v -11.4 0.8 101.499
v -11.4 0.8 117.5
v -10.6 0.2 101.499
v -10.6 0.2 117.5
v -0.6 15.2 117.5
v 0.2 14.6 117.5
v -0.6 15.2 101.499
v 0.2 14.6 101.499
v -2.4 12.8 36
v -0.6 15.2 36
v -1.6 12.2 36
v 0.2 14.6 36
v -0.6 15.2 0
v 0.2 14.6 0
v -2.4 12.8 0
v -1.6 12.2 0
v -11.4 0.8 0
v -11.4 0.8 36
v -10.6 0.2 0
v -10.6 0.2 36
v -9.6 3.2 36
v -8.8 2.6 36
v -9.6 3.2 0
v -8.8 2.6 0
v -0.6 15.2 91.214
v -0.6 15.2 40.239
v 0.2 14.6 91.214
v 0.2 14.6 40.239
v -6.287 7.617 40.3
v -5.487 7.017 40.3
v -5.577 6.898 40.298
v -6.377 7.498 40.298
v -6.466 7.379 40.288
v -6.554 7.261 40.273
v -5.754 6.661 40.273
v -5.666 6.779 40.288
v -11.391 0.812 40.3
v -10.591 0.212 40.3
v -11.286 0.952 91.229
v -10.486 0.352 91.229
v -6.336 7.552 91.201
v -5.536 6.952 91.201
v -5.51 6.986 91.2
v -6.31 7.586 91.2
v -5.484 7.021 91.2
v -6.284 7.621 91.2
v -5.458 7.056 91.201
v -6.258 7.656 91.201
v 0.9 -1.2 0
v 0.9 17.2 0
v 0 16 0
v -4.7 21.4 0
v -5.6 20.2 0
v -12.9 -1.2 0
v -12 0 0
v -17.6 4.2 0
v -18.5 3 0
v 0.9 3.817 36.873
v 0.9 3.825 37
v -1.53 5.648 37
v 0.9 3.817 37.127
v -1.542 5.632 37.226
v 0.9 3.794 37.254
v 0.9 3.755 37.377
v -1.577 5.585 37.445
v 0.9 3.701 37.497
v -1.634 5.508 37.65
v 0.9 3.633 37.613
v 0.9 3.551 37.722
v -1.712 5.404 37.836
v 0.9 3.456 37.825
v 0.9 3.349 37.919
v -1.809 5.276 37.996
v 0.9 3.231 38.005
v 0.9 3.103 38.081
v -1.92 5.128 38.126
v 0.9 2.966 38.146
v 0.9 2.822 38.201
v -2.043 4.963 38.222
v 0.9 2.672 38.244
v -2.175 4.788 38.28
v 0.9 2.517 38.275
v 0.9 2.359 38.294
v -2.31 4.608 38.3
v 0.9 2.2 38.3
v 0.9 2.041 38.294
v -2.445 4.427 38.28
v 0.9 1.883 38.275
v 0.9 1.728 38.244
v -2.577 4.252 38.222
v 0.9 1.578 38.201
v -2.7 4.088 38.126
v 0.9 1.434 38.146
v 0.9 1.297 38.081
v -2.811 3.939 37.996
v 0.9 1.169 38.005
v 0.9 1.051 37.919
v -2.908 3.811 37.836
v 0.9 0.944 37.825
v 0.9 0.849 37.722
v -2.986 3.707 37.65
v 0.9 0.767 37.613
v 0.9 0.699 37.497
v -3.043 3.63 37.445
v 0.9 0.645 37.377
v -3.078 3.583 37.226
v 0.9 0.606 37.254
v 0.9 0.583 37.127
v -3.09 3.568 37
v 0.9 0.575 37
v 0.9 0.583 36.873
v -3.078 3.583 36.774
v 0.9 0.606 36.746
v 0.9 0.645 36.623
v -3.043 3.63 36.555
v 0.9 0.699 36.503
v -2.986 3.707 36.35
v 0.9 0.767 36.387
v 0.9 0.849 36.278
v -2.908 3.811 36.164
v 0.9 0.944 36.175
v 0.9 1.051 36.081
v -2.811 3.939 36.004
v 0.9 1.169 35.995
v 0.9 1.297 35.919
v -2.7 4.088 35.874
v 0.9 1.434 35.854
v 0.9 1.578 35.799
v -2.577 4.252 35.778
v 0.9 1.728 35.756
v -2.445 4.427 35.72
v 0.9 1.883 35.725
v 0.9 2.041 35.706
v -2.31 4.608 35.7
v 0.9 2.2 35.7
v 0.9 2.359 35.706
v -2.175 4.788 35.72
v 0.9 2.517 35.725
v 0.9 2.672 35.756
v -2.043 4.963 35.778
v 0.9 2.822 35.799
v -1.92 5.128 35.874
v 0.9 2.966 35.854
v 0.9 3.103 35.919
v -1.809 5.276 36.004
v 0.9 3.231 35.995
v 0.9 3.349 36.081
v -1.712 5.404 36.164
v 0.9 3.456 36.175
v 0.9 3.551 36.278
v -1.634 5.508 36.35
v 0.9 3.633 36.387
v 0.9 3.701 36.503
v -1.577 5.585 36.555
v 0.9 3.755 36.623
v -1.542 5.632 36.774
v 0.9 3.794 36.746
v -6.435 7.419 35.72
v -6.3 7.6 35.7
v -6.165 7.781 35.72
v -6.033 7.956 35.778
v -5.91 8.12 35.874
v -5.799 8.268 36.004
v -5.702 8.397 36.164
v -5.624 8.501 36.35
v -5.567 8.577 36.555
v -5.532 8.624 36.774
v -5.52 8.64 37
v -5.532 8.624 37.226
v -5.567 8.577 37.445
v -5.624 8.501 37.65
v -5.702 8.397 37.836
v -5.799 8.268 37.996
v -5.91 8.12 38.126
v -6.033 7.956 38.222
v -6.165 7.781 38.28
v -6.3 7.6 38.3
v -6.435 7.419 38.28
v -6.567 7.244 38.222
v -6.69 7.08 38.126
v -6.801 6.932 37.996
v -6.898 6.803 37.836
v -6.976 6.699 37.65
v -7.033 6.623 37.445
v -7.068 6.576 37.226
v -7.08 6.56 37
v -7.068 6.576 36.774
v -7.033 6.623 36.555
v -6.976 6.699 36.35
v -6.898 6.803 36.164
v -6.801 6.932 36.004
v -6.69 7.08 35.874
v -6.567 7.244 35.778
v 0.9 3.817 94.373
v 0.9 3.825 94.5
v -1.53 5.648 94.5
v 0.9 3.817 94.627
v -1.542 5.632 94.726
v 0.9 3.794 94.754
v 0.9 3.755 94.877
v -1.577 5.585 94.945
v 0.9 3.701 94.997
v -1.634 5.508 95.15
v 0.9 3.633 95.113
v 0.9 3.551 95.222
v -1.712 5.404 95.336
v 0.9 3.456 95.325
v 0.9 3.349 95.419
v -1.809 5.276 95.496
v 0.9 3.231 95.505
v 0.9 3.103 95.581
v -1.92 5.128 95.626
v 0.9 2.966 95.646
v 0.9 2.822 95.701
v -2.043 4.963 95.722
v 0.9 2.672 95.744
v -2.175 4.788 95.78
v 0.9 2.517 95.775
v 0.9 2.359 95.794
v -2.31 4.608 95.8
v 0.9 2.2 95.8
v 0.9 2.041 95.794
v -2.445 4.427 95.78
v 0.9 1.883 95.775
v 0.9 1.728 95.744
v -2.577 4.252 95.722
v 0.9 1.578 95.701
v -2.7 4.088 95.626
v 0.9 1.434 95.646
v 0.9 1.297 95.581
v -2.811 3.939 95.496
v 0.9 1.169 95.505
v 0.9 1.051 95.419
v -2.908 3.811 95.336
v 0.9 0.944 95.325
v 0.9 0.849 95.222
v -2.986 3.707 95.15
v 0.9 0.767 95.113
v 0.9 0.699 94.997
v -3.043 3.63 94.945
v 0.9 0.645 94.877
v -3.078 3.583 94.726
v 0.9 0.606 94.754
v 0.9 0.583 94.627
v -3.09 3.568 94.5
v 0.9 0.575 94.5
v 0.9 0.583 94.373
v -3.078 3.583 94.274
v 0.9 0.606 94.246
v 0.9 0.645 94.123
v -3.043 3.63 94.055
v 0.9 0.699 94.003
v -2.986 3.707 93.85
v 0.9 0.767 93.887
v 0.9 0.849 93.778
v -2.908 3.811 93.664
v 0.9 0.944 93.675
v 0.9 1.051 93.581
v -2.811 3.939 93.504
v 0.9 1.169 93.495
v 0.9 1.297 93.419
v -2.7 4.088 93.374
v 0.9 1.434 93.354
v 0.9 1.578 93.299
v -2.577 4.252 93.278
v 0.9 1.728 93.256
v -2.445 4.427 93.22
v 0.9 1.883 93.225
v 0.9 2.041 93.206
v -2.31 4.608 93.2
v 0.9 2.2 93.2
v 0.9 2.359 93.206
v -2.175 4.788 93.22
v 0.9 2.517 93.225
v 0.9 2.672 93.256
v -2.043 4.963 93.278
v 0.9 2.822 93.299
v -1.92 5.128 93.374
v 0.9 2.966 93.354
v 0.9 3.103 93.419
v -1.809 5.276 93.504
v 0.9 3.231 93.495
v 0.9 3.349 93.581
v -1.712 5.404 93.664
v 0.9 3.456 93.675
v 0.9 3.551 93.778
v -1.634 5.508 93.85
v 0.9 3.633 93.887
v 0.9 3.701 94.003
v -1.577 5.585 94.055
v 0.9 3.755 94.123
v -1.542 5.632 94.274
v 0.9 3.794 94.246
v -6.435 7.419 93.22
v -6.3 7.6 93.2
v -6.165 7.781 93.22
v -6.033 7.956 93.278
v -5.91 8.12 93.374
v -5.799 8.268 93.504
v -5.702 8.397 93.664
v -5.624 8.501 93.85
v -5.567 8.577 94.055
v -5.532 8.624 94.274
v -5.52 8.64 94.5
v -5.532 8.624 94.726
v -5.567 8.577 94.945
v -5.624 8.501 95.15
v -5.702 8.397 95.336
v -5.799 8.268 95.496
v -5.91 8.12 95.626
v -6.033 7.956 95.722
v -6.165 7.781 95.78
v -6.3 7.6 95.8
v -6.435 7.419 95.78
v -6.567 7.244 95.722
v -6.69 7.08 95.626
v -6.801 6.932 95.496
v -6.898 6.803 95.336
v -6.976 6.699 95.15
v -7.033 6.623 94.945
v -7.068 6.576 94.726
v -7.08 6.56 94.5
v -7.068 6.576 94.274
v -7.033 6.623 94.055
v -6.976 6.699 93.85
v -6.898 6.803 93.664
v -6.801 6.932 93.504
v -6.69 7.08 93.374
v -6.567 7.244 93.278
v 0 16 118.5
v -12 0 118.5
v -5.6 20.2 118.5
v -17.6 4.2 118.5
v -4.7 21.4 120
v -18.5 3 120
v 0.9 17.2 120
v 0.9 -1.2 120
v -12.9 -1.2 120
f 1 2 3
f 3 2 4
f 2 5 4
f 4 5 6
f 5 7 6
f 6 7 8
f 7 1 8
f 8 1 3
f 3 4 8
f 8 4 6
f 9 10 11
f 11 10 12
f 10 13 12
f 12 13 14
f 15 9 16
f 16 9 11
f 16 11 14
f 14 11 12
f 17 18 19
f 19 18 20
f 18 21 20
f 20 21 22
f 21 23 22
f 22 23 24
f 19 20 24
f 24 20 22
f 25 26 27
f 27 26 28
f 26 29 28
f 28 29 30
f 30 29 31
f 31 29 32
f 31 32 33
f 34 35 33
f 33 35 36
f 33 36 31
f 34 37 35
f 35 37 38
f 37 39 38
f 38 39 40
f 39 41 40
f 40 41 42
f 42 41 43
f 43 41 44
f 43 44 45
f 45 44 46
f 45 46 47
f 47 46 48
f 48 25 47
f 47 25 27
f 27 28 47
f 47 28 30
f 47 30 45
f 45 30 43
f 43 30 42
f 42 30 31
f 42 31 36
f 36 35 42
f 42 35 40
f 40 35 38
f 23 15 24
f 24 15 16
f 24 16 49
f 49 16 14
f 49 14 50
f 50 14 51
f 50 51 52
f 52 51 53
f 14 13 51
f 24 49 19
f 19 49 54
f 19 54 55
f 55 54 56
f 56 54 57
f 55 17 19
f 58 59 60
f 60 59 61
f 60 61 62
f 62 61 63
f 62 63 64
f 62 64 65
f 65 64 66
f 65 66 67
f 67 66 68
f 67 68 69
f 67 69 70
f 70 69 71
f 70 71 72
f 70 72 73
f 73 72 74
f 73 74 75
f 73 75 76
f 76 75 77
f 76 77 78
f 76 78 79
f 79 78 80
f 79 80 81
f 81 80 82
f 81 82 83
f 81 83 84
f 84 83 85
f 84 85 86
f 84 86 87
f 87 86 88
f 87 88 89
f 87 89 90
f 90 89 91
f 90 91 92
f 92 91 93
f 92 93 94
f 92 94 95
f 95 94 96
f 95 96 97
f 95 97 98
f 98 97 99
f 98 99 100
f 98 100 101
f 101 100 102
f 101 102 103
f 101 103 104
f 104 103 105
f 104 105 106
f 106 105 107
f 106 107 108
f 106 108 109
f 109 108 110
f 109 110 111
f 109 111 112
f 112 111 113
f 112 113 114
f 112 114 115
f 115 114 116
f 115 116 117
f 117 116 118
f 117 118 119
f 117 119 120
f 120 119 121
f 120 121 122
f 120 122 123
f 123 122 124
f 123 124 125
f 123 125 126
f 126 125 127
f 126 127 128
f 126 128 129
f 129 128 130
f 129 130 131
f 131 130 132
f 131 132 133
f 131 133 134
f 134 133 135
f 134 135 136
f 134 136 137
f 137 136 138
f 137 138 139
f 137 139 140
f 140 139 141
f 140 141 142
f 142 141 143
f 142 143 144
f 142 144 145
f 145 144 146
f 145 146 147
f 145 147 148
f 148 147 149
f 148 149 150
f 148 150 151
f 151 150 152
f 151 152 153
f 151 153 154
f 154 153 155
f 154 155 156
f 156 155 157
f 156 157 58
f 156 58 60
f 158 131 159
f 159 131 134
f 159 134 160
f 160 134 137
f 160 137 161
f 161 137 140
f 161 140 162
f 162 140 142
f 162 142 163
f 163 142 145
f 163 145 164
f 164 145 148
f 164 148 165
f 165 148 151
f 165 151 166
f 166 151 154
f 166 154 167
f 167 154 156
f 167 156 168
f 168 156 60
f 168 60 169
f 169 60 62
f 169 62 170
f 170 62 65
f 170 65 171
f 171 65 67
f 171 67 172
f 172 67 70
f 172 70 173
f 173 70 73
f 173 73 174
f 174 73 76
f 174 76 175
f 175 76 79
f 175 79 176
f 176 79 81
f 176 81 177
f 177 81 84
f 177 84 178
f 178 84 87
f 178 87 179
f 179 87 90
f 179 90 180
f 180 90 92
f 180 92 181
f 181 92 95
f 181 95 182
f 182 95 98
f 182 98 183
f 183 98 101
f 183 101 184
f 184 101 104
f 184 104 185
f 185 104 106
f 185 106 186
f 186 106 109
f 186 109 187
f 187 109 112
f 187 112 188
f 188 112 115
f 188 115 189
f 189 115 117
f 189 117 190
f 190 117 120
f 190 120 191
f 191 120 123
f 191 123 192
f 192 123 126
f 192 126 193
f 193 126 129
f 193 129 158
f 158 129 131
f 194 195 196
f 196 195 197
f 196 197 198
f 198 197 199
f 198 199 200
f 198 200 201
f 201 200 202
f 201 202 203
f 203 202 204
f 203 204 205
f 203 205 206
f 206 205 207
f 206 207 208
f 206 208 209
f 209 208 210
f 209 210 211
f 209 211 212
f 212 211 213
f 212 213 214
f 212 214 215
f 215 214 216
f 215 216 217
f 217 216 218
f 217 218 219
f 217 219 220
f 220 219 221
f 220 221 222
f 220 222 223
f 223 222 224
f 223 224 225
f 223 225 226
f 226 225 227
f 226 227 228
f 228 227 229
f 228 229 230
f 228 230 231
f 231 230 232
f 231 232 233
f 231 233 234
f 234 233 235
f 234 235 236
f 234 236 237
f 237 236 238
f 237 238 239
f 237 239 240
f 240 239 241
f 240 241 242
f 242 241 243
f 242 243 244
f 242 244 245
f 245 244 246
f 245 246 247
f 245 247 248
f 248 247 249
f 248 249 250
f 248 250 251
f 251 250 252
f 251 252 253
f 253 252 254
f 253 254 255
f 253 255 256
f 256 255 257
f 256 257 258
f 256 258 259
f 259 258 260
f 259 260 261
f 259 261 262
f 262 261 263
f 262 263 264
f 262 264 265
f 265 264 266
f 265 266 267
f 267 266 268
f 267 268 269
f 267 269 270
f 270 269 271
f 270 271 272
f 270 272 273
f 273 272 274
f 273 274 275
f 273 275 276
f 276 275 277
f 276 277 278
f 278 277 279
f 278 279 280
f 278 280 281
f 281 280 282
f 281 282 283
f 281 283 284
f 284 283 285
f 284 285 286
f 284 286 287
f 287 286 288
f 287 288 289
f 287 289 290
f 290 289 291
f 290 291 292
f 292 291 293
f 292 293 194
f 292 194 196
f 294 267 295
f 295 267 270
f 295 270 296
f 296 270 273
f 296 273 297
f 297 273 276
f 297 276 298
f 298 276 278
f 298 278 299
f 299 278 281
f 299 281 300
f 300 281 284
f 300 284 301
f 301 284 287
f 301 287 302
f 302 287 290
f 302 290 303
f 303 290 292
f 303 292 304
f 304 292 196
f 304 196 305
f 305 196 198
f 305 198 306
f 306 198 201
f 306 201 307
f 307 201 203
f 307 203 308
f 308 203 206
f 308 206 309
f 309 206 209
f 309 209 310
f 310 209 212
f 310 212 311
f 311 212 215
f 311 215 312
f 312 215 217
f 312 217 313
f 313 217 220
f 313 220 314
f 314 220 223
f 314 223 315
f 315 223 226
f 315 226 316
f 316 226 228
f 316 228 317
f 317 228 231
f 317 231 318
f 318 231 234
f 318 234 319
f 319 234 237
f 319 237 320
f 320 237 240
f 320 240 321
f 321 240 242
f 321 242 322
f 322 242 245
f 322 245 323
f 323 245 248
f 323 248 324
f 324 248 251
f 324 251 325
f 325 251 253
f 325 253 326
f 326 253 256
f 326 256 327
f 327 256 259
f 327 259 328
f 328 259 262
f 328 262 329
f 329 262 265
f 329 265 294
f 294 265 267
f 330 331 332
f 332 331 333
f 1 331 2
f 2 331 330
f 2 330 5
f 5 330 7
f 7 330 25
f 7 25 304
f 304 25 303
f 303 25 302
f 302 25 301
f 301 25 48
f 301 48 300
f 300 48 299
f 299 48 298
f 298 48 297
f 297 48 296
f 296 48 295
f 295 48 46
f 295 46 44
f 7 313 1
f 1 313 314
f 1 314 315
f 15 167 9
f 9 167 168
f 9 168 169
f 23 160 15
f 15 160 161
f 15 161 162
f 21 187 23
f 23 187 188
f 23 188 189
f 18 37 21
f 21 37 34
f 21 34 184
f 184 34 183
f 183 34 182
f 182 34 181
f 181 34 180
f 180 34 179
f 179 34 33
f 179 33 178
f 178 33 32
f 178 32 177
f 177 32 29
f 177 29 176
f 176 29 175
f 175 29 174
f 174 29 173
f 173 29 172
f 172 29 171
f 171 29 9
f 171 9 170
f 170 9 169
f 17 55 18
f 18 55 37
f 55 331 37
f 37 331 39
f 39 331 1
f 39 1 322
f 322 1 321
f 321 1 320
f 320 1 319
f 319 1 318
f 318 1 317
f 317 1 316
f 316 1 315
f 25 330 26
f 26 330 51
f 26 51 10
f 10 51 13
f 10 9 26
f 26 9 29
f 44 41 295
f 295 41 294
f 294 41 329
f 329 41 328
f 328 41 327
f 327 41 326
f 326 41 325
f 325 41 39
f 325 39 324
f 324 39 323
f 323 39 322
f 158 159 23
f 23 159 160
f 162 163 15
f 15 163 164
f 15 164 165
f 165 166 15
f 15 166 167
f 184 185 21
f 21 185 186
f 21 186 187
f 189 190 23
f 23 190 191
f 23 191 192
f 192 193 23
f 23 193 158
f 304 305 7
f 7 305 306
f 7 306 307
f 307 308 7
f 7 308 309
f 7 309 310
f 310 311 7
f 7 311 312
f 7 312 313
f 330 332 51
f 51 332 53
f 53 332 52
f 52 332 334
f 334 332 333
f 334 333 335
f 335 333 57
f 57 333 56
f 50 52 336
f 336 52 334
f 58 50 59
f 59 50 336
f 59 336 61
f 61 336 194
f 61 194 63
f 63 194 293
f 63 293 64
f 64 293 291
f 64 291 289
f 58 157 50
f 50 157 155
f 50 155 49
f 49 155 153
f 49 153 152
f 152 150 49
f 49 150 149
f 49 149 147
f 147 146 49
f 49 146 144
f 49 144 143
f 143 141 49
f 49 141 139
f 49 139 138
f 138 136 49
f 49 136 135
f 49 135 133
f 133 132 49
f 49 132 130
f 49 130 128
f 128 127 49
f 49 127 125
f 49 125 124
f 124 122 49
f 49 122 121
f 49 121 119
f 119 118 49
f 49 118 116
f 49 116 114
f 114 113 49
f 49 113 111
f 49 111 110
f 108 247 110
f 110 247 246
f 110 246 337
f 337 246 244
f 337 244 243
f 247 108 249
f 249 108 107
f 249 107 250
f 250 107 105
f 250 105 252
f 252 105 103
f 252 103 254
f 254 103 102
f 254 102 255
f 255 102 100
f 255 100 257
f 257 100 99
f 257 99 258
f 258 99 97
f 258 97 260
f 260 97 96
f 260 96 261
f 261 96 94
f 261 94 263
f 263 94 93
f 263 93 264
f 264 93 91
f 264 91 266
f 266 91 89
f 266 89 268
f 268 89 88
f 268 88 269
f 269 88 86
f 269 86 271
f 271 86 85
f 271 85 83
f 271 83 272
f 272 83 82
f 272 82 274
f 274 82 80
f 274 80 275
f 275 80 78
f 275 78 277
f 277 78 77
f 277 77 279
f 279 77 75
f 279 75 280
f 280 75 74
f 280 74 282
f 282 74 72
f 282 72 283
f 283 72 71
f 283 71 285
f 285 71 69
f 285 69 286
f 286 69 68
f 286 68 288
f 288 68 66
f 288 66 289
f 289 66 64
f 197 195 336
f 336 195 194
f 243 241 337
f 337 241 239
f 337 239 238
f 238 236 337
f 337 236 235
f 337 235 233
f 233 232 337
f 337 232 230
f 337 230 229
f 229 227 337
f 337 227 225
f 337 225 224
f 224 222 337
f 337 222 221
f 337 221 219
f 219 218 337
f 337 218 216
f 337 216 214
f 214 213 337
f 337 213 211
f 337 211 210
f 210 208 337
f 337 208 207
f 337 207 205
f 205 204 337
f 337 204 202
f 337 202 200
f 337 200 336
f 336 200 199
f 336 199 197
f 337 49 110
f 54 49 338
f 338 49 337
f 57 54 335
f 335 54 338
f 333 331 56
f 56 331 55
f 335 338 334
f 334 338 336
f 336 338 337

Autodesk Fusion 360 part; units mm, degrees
sketch "スケッチ1" plane through (0, 0, 0) normal (0, 0, 1) x (1, 0, 0)
  line L0 (0, 0) -> (0, 16)
  line L1 (0, 0) -> (-12, 0)
  line L2 (-12, 0) -> (0, 16)
  line L3 (0, 16) -> (0.9, 17.2)
  line L4 (-12, 0) -> (-12.5407, 0)
  line L5 (-12, 0) -> (-12.9, -1.2)
  line L6 (-12, 0) -> (-17.6, 4.2)
  line L7 (-17.6, 4.2) -> (-18.5, 3)
  line L8 (-18.5, 3) -> (-12.9, -1.2)
  line L9 (0, 16) -> (-5.6, 20.2)
  line L10 (-5.6, 20.2) -> (-4.7, 21.4)
  line L11 (-4.7, 21.4) -> (0.9, 17.2)
  line L12 (0.9, 17.2) -> (0.9, -4)
  line L13 (-12.9, -1.2) -> (1.7279, -1.2)
  dimension "d1" = 16
  dimension "d3" = 1.5
  dimension "d4" = 1.5
  dimension "d5" = 7
  dimension "d6" = 1.5
  dimension "d7" = 7
  dimension "d8" = 1.5
extrude "押し出し1" add sketch "スケッチ1" along normal blind 120
sketch "スケッチ2" plane through (-7.68, 5.76, 0) normal (-0.8, 0.6, 0) x (0, 0, 1)
  line L0 (0, 12.8) -> (0, -7.2)
  line L1 (0, -7.2) -> (120, -7.2)
  line L2 (120, -7.2) -> (120, 12.8)
  line L3 (120, 12.8) -> (0, 12.8)
  line L4 (120, 12.8) -> (118.5, 12.8)
  line L5 (118.5, 12.8) -> (118.5, -7.2)
  line L6 (118.5, -7.2) -> (120, -7.2)
  line L7 (120, -7.2) -> (120, 12.8)
  dimension "d11" = 1.5
  dimension "d12" = 20
extrude "押し出し2" add sketch "スケッチ2" along normal blind 7 contours L1 L2 L3 L4 L5 L6 L7
sketch "スケッチ3" plane through (-7.68, 5.76, 0) normal (-0.8, 0.6, 0) x (0, 0, 1)
  line L0 (118.5, -7.2) -> (118.5, 12.8)
  line L1 (118.5, 12.8) -> (0, 12.8)
  line L2 (0, 12.8) -> (0, -7.2)
  line L3 (0, -7.2) -> (118.5, -7.2)
  line L4 (118.5, -7.2) -> (94.5, -7.2)
  line L5 (94.5, -7.2) -> (94.5, 2.3)
  circle A0 centre (94.5, 2.3) radius 1.3
  line L6 (94.5, 2.3) -> (37, 2.3)
  circle A1 centre (37, 2.3) radius 1.3
  dimension "d15" = 24
  dimension "d16" = 9.5
  dimension "d17" = 2.6
  dimension "d18" = 57.5
  dimension "d19" = 2.6
extrude "押し出し3" cut sketch "スケッチ3" against normal blind 20 contours A1 | L5 A0 L6 | L5 A0 L6
sketch "スケッチ4" plane through (-7.68, 5.76, 0) normal (-0.8, 0.6, 0) x (0, 0, 1)
  circle A0 centre (37, 2.3) radius 1.3
  circle A1 centre (94.5, 2.3) radius 1.3
  line L0 (118.5, -7.2) -> (118.5, 12.8)
  line L1 (118.5, 12.8) -> (0, 12.8)
  line L2 (0, 12.8) -> (0, -7.2)
  line L3 (0, -7.2) -> (118.5, -7.2)
  line L4 (0, 12.8) -> (0, 11.8)
  line L5 (0, 11.8) -> (36, 11.8)
  line L6 (36, 11.8) -> (36, 8.8)
  line L7 (36, 8.8) -> (0, 8.8)
  line L8 (0, 8.8) -> (0, 11.8)
  line L9 (0, -7.2) -> (0, -6.2)
  line L10 (0, -6.2) -> (36, -6.2)
  line L11 (36, -6.2) -> (36, -3.2)
  line L12 (36, -3.2) -> (0, -3.2)
  line L13 (0, -3.2) -> (0, -6.2)
  line L14 (36, 11.8) -> (94, 11.8)
  line L15 (36, -6.2) -> (94, -6)
  circle A2 centre (37, 2.3) radius 3.3
  line L16 (40.2999, 2.3211) -> (40.2394, 11.8)
  line L17 (40.2697, 2.7464) -> (40.3005, -6.1852)
  circle A3 centre (94.5, 2.3) radius 3.3
  line L18 (91.2005, 2.2398) -> (91.2305, -6.4364)
  line L19 (91.2005, 2.2398) -> (91.2155, 12.5754)
  dimension "d22" = 1
  dimension "d23" = 3
  dimension "d24" = 1
  dimension "d25" = 3
  dimension "d26" = 2
  dimension "d27" = 2
extrude "押し出し4" cut sketch "スケッチ4" against normal blind 1 contours L2 L10 L11 L12 L13 | L2 L5 L6 L7 L8 | L14 L15 A2 L16 L17 L18 L19
sketch "スケッチ5" plane through (-7.68, 5.76, 0) normal (-0.8, 0.6, 0) x (0, 0, 1)
  line L0 (36, 8.8) -> (0, 8.8)
  line L1 (0, 8.8) -> (0, -3.2)
  line L2 (0, -3.2) -> (36, -3.2)
  line L3 (36, -3.2) -> (36, -6.2)
  line L4 (36, -6.2) -> (0, -6.2)
  line L5 (0, -6.2) -> (0, -7.2)
  line L6 (0, -7.2) -> (118.5, -7.2)
  line L7 (118.5, -7.2) -> (118.5, 12.8)
  line L8 (118.5, 12.8) -> (0, 12.8)
  line L9 (0, 12.8) -> (0, 11.8)
  line L10 (0, 11.8) -> (36, 11.8)
  line L11 (36, 11.8) -> (36, 8.8)
  line L12 (40.2394, 11.8) -> (91.2144, 11.8)
  line L13 (91.2144, 11.8) -> (91.2007, 2.3697)
  arc A0 (91.2007, 2.3697) -> (91.2005, 2.2398) centre (94.5, 2.3) ccw
  line L14 (91.2005, 2.2398) -> (91.229, -6.0096)
  line L15 (91.229, -6.0096) -> (40.3005, -6.1852)
  line L16 (40.3005, -6.1852) -> (40.2727, 1.8761)
  arc A1 (40.2727, 1.8761) -> (40.2999, 2.3211) centre (37, 2.3) ccw
  line L17 (40.2999, 2.3211) -> (40.2394, 11.8)
  circle A2 centre (37, 2.3) radius 1.3
  circle A3 centre (94.5, 2.3) radius 1.3
  line L18 (37, 11.8) -> (37, 7.8)
  line L19 (37, 7.8) -> (1, 7.8)
  line L20 (1, 7.8) -> (1, -2.2)
  line L21 (1, -2.2) -> (37, -2.2)
  line L22 (37, -2.2) -> (37, -6.2)
  line L23 (37, -6.2) -> (117.5, -6.2)
  line L24 (117.5, -6.2) -> (117.5, 11.8)
  line L25 (117.5, 11.8) -> (37, 11.8)
  line L26 (101.4988, 11.8) -> (101.4988, -6.2)
  dimension "d30" = -1
extrude "押し出し5" cut sketch "スケッチ5" against normal blind 1 contours L23 L24 L25 L26
